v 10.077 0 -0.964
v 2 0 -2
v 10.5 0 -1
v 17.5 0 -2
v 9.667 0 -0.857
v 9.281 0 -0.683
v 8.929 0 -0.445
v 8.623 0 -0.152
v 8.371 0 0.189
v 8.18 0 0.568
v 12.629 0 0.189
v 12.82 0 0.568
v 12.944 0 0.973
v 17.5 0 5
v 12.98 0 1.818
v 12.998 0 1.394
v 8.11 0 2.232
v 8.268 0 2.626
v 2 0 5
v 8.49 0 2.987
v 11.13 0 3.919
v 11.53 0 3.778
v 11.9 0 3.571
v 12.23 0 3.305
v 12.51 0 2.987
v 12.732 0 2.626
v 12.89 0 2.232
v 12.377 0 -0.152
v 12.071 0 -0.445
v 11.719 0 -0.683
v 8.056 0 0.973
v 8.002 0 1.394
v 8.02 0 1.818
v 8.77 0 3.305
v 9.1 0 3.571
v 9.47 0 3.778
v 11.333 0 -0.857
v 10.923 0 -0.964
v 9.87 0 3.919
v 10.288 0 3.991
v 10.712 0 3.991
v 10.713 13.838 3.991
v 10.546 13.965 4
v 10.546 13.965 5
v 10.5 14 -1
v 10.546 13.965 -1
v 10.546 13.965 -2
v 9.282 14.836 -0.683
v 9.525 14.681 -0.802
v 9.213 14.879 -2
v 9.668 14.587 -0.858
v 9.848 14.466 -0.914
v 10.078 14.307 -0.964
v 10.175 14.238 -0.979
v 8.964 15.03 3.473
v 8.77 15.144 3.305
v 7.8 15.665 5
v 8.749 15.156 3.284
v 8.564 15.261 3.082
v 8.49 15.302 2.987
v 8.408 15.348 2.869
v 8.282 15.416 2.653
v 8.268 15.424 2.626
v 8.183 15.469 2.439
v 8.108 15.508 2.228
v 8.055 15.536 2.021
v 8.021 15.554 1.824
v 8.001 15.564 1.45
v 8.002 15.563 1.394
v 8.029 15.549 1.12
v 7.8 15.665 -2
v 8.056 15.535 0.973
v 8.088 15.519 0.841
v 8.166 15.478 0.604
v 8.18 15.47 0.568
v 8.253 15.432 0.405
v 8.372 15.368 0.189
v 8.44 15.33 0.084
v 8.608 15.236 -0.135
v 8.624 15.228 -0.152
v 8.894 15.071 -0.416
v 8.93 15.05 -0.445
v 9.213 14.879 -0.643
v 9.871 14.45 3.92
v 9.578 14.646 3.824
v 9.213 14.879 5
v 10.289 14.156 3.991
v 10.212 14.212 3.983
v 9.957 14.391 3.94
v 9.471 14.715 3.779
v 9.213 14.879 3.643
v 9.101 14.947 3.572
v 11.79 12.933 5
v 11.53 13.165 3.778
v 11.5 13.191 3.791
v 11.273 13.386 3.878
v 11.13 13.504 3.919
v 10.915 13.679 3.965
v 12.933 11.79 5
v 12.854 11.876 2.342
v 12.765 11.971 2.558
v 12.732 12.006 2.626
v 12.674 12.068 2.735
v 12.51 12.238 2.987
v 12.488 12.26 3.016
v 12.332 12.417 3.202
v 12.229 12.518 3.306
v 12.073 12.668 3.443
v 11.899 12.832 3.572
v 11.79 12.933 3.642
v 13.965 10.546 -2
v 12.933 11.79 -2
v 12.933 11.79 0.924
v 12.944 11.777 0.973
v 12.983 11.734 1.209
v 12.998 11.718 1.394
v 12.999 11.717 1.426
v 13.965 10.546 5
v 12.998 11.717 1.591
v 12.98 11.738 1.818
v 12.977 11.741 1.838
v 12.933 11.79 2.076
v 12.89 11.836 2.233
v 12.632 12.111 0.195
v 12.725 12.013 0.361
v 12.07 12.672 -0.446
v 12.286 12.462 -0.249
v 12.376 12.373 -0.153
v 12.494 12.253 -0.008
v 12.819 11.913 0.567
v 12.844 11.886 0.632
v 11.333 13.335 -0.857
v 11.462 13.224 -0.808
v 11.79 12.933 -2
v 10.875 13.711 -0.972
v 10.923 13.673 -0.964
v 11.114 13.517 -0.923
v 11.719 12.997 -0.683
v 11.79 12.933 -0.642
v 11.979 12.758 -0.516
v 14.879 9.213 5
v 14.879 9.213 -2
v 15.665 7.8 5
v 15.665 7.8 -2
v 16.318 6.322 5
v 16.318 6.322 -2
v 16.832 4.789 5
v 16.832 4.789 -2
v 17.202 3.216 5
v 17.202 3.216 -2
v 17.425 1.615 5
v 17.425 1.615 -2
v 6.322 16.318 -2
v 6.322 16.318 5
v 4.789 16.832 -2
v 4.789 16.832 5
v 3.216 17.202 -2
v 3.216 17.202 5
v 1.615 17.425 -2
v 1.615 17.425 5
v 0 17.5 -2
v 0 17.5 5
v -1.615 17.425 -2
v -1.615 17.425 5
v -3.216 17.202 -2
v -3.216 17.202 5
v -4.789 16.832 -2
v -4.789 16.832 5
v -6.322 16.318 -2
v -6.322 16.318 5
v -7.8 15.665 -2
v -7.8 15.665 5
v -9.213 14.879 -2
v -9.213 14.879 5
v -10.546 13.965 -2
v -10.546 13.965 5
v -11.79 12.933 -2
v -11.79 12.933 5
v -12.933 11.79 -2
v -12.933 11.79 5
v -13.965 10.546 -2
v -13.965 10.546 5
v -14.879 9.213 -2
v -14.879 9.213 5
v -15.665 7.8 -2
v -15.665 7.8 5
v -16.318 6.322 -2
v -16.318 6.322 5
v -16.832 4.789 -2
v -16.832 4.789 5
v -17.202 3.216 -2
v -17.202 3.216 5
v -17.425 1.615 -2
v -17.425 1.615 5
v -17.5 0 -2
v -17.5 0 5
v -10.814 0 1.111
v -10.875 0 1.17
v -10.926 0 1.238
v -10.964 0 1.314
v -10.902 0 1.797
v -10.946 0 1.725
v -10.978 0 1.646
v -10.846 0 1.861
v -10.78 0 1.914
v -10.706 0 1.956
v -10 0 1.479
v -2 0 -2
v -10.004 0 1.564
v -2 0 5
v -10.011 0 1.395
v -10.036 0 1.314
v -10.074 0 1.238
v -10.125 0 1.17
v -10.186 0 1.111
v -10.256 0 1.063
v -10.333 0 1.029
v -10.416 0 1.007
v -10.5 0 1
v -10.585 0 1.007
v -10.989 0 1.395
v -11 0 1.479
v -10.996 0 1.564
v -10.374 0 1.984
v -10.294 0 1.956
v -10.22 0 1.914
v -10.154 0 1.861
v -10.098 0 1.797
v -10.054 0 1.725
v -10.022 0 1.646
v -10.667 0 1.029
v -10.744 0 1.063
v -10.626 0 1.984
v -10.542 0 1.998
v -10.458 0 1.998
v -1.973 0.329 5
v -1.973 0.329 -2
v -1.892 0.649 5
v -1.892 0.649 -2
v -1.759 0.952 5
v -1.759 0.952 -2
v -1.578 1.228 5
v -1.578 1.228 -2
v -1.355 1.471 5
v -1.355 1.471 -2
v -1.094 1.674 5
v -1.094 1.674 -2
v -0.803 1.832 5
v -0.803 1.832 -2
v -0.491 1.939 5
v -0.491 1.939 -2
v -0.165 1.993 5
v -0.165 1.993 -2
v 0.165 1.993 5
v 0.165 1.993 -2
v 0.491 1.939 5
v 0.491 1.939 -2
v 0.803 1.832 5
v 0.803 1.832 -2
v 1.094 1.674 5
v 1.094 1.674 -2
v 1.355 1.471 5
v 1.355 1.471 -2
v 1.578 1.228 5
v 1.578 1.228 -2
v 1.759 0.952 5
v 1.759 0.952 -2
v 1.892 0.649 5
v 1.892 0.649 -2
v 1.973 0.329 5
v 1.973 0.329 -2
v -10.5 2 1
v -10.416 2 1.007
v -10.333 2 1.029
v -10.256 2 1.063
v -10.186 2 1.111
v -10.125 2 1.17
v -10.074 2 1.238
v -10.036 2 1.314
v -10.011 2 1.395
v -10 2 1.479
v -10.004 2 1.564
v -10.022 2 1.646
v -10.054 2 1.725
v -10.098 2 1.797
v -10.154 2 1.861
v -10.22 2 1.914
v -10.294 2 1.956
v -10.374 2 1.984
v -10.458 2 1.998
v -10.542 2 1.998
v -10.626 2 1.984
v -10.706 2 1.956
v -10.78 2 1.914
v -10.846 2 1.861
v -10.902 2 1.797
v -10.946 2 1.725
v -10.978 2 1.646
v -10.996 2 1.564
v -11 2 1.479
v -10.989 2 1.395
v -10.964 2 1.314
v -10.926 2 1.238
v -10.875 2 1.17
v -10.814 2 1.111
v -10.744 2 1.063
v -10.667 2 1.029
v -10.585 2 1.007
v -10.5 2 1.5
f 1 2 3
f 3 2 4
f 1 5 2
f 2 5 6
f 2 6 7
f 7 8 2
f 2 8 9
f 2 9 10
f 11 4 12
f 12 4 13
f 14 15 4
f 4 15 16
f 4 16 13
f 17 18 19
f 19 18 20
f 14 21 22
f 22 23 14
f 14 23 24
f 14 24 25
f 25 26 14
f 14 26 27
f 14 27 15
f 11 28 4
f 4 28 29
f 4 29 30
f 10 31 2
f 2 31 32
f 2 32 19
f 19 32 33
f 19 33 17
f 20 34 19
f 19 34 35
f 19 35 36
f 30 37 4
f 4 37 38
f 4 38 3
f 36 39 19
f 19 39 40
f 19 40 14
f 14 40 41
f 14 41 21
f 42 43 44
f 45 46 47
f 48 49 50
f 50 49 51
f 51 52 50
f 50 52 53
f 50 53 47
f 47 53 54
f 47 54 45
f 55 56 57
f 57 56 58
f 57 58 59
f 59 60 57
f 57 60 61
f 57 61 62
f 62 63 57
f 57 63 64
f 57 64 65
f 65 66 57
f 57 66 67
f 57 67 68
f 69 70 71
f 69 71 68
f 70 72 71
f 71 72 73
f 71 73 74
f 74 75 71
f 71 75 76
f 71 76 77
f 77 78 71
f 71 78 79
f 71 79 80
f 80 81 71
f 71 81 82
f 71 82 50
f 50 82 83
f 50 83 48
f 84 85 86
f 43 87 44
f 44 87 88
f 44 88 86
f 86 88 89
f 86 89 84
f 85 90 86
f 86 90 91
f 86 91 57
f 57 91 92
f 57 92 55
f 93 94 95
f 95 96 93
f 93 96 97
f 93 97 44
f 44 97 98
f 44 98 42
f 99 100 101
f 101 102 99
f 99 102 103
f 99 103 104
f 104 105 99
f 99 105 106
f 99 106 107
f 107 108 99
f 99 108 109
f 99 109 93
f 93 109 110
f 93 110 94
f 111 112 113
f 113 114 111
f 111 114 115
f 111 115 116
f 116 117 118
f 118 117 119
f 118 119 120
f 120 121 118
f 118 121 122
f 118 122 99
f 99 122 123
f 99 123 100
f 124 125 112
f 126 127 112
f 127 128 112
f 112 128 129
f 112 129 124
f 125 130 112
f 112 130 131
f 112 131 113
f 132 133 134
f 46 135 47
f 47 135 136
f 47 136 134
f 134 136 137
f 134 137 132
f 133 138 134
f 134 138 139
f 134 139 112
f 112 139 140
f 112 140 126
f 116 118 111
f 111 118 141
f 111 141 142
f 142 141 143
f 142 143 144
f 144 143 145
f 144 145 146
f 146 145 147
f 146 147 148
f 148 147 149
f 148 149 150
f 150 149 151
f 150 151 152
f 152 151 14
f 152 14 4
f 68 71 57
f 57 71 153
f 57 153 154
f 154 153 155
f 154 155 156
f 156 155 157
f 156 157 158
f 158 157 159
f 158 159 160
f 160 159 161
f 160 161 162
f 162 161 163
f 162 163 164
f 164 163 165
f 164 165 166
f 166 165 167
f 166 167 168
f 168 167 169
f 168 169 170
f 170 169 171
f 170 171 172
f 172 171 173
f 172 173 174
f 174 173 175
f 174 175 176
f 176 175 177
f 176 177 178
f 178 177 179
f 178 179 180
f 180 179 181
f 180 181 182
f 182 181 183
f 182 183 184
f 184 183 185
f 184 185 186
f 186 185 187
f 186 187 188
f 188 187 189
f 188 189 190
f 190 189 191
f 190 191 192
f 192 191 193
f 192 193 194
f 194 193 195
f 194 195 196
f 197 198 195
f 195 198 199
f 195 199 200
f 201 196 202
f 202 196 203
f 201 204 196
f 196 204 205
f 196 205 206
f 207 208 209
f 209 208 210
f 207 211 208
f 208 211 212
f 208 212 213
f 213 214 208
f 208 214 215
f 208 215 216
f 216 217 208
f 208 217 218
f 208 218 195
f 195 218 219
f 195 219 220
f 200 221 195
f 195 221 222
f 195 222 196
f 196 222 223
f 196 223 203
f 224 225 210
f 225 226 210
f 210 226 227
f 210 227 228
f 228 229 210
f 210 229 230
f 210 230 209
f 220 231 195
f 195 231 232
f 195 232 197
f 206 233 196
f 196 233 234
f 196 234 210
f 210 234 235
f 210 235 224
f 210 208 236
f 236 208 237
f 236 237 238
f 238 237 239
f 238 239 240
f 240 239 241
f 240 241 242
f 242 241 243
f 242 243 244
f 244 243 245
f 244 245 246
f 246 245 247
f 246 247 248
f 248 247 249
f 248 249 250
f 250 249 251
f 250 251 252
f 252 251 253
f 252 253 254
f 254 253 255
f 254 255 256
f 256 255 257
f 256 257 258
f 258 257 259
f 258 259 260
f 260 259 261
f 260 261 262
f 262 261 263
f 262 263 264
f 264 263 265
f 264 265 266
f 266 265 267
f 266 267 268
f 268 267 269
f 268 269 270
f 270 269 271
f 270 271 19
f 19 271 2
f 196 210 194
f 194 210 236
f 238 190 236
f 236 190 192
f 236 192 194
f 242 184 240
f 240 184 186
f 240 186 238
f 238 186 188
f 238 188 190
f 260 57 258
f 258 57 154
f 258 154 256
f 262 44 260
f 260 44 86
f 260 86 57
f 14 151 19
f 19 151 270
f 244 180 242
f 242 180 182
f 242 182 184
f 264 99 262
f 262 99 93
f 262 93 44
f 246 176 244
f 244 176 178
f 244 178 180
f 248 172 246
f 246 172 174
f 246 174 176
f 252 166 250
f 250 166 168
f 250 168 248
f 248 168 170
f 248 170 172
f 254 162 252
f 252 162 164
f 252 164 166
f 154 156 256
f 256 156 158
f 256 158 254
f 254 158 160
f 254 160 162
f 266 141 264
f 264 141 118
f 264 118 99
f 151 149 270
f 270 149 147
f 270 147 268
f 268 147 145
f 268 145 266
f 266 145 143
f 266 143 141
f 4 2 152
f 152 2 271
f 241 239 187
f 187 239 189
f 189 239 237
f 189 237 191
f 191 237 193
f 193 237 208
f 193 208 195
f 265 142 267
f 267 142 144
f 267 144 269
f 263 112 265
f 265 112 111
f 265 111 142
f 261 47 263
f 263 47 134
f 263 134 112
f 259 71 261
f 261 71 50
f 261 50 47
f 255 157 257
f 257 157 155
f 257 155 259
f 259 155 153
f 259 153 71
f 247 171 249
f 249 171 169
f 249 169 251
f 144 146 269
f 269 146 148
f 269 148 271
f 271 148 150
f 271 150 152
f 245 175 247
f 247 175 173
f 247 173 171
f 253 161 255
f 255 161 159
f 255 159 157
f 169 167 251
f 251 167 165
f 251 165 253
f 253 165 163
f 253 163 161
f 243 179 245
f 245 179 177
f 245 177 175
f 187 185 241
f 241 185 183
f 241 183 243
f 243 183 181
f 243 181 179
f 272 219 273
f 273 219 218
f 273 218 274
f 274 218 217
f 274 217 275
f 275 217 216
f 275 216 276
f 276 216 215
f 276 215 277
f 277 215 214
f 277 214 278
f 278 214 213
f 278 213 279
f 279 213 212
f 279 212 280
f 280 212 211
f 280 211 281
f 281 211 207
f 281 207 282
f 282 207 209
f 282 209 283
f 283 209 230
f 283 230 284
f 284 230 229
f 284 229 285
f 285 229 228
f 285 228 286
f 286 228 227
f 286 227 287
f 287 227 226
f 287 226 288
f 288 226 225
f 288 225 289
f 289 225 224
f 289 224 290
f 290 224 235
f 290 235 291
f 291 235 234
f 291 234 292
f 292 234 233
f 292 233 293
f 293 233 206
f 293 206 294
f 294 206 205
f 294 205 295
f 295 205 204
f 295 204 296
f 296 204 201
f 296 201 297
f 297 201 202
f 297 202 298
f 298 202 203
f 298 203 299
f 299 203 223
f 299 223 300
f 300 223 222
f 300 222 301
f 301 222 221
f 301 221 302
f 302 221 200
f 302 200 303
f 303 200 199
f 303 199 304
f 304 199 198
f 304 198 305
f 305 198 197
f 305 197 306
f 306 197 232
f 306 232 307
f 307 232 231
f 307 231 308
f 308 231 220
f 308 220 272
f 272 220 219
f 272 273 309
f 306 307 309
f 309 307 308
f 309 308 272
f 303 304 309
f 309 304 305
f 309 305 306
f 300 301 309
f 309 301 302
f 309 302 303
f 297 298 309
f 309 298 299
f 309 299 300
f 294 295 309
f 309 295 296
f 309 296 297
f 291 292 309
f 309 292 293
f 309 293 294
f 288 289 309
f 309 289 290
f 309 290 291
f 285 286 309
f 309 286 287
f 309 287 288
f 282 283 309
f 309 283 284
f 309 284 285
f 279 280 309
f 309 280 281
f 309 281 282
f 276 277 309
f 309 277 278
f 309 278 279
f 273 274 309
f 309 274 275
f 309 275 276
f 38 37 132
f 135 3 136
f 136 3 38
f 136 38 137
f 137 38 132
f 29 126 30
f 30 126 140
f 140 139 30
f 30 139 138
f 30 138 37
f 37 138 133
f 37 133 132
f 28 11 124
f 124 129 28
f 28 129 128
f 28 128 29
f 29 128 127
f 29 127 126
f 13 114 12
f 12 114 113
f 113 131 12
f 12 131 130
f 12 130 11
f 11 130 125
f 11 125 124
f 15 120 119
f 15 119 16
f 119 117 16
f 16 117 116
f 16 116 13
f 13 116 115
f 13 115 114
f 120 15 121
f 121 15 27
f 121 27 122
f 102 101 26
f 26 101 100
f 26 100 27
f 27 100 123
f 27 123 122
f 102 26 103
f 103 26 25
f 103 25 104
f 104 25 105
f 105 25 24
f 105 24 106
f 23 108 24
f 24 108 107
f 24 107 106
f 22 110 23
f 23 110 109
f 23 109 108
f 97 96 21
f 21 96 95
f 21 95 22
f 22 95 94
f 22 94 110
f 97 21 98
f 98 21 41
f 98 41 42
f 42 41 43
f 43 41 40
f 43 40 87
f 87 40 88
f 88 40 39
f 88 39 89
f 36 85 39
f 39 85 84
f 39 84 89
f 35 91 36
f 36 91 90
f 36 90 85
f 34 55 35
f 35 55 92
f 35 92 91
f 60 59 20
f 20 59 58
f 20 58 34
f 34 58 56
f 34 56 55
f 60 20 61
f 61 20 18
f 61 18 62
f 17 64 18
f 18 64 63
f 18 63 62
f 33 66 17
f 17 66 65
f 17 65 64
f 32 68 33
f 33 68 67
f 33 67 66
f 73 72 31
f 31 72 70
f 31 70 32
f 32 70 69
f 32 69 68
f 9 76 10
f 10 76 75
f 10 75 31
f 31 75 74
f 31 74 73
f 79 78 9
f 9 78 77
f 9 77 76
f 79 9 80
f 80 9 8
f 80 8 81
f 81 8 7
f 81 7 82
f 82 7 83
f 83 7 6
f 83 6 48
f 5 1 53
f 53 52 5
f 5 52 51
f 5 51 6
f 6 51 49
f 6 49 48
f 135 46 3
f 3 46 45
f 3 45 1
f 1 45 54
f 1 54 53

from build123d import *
from build123d.topology import SkipClean

# Parameters (mm, degrees)
BOSS_EXTRU_1_DEPTH      = 5
BOSS_EXTRU_3_START      = 2
BOSS_EXTRU_3_DEPTH      = 2
ESQUISSE5_R             = 0.5
ESQUISSE5_R_2           = 2.5
ENL_V_MAT_EXTRU_1_DEPTH = 2
ESQUISSE7_R             = 2.5
ENL_V_MAT_EXTRU_2_DEPTH = 24.906066176
ESQUISSE8_R             = 2
ENL_V_MAT_EXTRU_3_DEPTH = 26.719642463


with BuildPart() as part:
    # Esquisse1 → Boss.-Extru.1 (new body)
    with BuildSketch(Plane.XY):
        with BuildLine():
            Line((-1.732050808, 1), (1.732050808, 1))
            ThreePointArc((1.732050808, 1), (1.931851653, 0.51763809), (2, 0))
            Line((2, 0), (17.5, 0))
            ThreePointArc((17.5, 0), (0, 17.5), (-17.5, 0))
            Line((-17.5, 0), (-2, 0))
            ThreePointArc((-2, 0), (-1.931851653, 0.51763809), (-1.732050808, 1))
        make_face()
    extrude(amount=BOSS_EXTRU_1_DEPTH)

    # Esquisse3 → Boss.-Extru.3 (add)
    with SkipClean():  # the faces are left unmerged after this step: merging them gives an invalid solid
        with BuildSketch(Plane(origin=(0, 0, 0), x_dir=(-1, 0, 0), z_dir=(0, 0, -1)).offset(BOSS_EXTRU_3_START)):
            with BuildLine():
                Line((0, 2), (0, 17.5))
                ThreePointArc((0, 17.5), (-12.374368671, 12.374368671), (-17.5, 0))
                Line((-17.5, 0), (-2, 0))
                ThreePointArc((-2, 0), (-1.931851653, 0.51763809), (-1.732050808, 1))
                ThreePointArc((-1.732050808, 1), (-1, 1.732050808), (0, 2))
            make_face()
            with BuildLine():
                ThreePointArc((17.5, 0), (12.374368671, 12.374368671), (0, 17.5))
                Line((0, 17.5), (0, 2))
                ThreePointArc((0, 2), (1, 1.732050808), (1.732050808, 1))
                ThreePointArc((1.732050808, 1), (1.931851653, 0.51763809), (2, 0))
                Line((2, 0), (17.5, 0))
            make_face()
        extrude(amount=-BOSS_EXTRU_3_DEPTH)

    # Esquisse5 → Enlèv. mat.-Extru.1 (cut)
    with SkipClean():  # the faces are left unmerged after this step: merging them gives an invalid solid
        with BuildSketch(Plane.XZ):
            with Locations(Location((-10.5, 1.5, 0), (0, 0, 270))):
                Circle(ESQUISSE5_R)
            with Locations(Location((10.5, 1.5, 0), (0, 0, 270))):
                Circle(ESQUISSE5_R_2)
        extrude(amount=-ENL_V_MAT_EXTRU_1_DEPTH, mode=Mode.SUBTRACT)

    # Esquisse7 → Enlèv. mat.-Extru.2 (cut, through all)
    with SkipClean():  # the faces are left unmerged after this step: merging them gives an invalid solid
        with BuildSketch(Plane.XZ.offset(-2)):
            with Locations(Location((10.5, 1.5, 0), (0, 0, 270))):
                Circle(ESQUISSE7_R)
        extrude(amount=-ENL_V_MAT_EXTRU_2_DEPTH, mode=Mode.SUBTRACT)

    # Esquisse8 → Enlèv. mat.-Extru.3 (cut, through all)
    with SkipClean():  # the faces are left unmerged after this step: merging them gives an invalid solid
        with BuildSketch(Plane(origin=(0, 0, -2), x_dir=(-1, 0, 0), z_dir=(0, 0, -1))):
            Circle(ESQUISSE8_R)
        extrude(amount=-ENL_V_MAT_EXTRU_3_DEPTH, mode=Mode.SUBTRACT)


solid = part.part
